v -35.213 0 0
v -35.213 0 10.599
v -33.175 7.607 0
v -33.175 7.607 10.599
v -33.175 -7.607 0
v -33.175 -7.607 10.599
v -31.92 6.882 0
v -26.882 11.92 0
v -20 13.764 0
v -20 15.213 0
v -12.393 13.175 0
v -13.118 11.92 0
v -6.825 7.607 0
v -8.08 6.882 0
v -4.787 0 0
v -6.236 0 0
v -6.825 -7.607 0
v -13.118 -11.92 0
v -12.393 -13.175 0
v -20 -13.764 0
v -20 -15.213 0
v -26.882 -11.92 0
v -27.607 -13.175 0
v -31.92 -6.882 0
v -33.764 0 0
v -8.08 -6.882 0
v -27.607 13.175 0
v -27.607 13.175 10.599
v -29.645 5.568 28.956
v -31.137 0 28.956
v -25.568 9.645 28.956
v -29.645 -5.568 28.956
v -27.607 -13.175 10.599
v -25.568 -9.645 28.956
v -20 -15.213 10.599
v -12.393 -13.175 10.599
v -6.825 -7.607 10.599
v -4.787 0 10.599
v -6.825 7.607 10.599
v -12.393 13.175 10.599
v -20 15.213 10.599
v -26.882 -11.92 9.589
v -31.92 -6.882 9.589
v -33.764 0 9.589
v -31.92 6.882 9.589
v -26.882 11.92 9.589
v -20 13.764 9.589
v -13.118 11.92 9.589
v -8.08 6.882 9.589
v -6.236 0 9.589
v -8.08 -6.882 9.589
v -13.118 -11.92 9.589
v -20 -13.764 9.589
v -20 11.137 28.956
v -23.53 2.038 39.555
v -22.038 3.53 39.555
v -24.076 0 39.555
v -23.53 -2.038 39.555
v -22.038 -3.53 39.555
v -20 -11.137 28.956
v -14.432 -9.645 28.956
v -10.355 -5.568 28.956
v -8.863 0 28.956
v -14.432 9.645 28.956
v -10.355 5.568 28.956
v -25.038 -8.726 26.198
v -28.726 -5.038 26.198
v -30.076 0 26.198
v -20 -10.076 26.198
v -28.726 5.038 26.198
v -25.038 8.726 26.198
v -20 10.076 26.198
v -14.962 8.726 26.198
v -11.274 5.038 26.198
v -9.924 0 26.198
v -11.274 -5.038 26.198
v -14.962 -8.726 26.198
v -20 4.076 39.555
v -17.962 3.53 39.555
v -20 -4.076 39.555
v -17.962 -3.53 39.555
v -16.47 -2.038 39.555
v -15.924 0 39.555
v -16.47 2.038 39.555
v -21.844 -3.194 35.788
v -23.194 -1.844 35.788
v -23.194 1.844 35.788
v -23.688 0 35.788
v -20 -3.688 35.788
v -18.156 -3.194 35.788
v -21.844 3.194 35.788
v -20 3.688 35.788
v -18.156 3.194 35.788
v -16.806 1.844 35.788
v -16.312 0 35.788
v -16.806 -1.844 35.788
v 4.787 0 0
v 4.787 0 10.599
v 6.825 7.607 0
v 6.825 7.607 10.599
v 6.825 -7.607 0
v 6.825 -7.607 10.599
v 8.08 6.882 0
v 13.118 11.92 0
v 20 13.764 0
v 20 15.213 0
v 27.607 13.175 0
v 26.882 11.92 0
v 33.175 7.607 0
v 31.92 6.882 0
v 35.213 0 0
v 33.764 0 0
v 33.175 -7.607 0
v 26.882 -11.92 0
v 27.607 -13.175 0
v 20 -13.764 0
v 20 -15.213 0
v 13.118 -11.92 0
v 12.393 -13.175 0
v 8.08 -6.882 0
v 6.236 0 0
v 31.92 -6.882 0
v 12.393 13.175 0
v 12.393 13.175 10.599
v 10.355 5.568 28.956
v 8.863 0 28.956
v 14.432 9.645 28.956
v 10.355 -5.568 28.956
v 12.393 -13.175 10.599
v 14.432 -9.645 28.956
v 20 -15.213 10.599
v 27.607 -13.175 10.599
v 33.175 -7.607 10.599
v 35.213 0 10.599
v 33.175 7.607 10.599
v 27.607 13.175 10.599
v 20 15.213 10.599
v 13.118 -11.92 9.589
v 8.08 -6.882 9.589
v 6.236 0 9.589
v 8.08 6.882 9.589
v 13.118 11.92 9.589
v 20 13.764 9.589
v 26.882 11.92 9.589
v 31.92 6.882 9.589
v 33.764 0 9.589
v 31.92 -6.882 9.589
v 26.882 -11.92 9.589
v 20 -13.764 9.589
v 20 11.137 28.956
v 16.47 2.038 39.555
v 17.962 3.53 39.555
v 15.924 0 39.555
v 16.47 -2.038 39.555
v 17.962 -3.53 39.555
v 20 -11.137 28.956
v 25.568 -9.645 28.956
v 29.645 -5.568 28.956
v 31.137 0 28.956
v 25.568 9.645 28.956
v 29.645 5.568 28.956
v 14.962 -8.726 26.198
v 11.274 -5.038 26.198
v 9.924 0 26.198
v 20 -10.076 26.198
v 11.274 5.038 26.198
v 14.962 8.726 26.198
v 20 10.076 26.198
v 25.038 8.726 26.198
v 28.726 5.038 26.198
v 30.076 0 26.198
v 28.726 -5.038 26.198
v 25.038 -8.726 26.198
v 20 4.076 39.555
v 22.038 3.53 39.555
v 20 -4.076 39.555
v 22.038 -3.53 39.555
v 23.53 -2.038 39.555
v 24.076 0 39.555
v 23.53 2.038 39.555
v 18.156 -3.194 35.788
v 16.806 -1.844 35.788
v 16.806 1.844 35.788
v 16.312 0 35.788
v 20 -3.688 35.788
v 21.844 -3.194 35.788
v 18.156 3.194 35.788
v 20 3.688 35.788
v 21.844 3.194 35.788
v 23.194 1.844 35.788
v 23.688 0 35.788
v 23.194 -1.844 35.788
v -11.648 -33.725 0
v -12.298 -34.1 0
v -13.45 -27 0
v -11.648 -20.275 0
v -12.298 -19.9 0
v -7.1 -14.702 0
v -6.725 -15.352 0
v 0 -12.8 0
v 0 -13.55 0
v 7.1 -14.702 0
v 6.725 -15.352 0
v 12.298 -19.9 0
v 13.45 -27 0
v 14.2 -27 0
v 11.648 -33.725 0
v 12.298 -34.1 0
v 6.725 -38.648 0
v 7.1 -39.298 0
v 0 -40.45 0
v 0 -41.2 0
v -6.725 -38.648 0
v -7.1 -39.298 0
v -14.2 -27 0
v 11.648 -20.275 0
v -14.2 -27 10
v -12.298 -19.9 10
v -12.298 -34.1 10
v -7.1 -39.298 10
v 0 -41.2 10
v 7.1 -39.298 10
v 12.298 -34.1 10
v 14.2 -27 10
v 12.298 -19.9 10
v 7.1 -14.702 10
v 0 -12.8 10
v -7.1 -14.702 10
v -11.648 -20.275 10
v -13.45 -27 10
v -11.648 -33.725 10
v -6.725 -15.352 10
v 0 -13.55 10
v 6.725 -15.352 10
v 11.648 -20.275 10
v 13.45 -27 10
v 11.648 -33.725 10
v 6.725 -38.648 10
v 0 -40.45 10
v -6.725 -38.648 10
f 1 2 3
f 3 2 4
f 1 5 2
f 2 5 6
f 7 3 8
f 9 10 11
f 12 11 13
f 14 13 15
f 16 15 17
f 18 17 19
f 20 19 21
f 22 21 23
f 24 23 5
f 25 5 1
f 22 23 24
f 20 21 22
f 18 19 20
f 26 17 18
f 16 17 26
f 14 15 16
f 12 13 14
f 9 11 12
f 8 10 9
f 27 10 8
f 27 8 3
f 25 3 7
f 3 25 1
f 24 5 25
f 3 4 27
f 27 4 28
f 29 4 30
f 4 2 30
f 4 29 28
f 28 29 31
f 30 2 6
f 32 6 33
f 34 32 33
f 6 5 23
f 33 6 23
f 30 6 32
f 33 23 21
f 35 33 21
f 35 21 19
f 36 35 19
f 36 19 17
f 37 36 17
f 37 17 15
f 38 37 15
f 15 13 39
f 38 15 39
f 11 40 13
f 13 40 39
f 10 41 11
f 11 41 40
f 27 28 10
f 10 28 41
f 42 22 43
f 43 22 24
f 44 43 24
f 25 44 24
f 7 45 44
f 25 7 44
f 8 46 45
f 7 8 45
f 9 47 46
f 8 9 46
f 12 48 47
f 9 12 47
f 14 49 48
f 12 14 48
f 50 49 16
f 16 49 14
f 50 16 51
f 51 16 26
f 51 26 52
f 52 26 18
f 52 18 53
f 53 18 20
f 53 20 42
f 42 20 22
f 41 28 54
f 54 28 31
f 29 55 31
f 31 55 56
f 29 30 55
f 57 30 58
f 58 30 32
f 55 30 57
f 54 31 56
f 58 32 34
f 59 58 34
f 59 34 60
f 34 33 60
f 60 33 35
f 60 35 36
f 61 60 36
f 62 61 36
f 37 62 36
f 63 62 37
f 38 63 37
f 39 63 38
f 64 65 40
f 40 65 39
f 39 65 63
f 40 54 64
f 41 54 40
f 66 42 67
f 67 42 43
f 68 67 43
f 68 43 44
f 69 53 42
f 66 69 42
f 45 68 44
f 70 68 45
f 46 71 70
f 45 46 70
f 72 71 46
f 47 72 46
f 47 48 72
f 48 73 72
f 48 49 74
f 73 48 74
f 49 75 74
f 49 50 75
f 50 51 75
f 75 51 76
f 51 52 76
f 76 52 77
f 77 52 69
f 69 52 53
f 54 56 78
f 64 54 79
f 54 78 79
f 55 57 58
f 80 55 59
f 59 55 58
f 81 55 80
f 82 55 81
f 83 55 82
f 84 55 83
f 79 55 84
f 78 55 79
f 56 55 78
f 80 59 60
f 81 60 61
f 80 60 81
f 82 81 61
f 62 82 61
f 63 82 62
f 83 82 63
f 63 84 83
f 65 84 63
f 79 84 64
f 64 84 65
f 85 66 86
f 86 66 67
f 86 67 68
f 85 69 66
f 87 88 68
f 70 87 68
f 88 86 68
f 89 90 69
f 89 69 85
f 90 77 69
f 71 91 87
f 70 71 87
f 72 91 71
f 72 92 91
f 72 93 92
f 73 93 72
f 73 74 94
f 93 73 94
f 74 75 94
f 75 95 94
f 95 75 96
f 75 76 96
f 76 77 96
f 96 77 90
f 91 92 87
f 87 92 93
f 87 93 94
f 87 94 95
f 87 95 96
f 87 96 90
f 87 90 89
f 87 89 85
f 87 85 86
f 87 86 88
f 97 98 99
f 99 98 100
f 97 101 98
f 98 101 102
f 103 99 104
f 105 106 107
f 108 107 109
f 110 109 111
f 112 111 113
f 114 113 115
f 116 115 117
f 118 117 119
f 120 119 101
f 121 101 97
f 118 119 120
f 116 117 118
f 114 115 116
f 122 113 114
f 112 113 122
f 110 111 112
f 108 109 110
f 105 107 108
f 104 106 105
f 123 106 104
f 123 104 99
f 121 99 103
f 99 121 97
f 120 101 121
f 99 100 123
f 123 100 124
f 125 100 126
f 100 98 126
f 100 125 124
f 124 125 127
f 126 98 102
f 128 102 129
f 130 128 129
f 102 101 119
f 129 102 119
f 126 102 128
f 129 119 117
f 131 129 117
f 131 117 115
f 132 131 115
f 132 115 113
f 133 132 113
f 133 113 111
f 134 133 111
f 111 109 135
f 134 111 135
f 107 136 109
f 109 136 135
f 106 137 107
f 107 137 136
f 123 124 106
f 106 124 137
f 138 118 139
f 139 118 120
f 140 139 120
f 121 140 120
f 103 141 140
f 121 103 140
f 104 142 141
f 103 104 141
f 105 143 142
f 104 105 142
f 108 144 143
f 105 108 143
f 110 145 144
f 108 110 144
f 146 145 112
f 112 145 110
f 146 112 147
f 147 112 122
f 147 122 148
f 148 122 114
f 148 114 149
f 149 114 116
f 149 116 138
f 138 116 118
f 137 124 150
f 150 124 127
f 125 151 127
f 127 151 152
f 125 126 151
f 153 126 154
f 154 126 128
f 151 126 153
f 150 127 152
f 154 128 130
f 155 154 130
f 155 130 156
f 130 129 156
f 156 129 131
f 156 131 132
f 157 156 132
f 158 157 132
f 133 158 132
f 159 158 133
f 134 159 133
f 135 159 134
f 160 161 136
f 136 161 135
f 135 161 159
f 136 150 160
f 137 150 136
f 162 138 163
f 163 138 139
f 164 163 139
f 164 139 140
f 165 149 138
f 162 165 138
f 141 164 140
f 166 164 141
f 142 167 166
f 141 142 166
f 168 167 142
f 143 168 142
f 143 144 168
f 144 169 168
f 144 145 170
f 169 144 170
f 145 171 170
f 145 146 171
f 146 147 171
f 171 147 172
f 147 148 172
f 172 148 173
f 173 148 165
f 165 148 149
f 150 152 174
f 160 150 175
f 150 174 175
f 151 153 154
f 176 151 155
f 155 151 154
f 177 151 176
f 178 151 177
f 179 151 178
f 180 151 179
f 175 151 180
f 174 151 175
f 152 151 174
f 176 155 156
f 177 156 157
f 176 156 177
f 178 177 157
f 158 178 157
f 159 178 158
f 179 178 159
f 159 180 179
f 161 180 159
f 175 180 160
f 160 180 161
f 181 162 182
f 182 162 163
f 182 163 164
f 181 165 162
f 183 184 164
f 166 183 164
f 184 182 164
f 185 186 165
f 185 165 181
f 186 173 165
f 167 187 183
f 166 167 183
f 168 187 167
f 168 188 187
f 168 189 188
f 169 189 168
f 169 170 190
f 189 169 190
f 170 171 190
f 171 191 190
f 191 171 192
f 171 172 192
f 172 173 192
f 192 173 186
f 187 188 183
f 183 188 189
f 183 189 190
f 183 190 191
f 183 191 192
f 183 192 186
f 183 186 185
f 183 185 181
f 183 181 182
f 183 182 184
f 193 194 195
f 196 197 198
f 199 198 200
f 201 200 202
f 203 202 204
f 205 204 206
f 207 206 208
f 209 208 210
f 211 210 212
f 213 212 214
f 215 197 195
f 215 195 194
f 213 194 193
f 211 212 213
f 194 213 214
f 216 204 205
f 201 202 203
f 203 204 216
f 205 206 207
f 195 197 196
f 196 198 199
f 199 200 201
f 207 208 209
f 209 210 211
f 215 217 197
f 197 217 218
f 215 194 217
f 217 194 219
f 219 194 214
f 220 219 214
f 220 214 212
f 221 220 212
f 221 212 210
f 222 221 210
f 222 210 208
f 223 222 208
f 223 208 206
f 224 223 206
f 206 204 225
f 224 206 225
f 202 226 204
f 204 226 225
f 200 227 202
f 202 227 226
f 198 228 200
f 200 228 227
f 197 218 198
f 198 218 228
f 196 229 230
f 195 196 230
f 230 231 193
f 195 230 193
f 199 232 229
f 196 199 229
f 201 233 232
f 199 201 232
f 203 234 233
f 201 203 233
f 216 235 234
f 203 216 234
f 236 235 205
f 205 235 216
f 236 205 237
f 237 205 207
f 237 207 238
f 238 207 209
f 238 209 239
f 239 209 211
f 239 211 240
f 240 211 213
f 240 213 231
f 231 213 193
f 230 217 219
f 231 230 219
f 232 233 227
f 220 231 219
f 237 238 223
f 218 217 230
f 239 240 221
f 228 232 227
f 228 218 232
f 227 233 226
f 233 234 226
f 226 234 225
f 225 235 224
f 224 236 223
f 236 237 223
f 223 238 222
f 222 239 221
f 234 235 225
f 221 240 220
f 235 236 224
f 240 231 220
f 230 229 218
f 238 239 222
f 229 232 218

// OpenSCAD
// shaker.scad
// parametric shaker
// byteborg - karsten@rohrbach.de
// derived from Egg.scad thing:7832 by Nicholas C. Lewis

$fn=12;
radius = 15;
wall = 1.5;
tol = .1;
stretch = 2.6;
linkh = 10;

module ei(rd) {
    hull(){
    	intersection(){
    		scale([1,1,stretch]) sphere(r=rd);
    		translate([0,0,stretch*rd])cube(2*stretch*rd, center = true);
    	}
    	sphere(r=rd);
    }    
}

for (t = [-(radius+5), (radius+5)])
translate ([t,0,0]) 
difference(){
    ei(radius+wall/2);
    ei(radius-wall/2);
    translate([0,0,-radius*1.5])
        cube(size=[radius*3, radius*3, radius*3], center=true);
}

// translate ([(radius+5),0,0]) 
// rotate([180,0,0])
// difference(){
//     ei(radius+wall/2);
//     ei(radius-wall/2);
//     translate([0,0,radius*1.5])
//         cube(size=[radius*3, radius*3, radius*3], center=true);
// }

translate([0, -(radius*1.8), linkh/2])
difference() {
    cylinder(r=radius-wall/2-tol/2, h=linkh, center=true);
    cylinder(r=radius-wall-tol/2, h=linkh+1, center=true);
    
}
